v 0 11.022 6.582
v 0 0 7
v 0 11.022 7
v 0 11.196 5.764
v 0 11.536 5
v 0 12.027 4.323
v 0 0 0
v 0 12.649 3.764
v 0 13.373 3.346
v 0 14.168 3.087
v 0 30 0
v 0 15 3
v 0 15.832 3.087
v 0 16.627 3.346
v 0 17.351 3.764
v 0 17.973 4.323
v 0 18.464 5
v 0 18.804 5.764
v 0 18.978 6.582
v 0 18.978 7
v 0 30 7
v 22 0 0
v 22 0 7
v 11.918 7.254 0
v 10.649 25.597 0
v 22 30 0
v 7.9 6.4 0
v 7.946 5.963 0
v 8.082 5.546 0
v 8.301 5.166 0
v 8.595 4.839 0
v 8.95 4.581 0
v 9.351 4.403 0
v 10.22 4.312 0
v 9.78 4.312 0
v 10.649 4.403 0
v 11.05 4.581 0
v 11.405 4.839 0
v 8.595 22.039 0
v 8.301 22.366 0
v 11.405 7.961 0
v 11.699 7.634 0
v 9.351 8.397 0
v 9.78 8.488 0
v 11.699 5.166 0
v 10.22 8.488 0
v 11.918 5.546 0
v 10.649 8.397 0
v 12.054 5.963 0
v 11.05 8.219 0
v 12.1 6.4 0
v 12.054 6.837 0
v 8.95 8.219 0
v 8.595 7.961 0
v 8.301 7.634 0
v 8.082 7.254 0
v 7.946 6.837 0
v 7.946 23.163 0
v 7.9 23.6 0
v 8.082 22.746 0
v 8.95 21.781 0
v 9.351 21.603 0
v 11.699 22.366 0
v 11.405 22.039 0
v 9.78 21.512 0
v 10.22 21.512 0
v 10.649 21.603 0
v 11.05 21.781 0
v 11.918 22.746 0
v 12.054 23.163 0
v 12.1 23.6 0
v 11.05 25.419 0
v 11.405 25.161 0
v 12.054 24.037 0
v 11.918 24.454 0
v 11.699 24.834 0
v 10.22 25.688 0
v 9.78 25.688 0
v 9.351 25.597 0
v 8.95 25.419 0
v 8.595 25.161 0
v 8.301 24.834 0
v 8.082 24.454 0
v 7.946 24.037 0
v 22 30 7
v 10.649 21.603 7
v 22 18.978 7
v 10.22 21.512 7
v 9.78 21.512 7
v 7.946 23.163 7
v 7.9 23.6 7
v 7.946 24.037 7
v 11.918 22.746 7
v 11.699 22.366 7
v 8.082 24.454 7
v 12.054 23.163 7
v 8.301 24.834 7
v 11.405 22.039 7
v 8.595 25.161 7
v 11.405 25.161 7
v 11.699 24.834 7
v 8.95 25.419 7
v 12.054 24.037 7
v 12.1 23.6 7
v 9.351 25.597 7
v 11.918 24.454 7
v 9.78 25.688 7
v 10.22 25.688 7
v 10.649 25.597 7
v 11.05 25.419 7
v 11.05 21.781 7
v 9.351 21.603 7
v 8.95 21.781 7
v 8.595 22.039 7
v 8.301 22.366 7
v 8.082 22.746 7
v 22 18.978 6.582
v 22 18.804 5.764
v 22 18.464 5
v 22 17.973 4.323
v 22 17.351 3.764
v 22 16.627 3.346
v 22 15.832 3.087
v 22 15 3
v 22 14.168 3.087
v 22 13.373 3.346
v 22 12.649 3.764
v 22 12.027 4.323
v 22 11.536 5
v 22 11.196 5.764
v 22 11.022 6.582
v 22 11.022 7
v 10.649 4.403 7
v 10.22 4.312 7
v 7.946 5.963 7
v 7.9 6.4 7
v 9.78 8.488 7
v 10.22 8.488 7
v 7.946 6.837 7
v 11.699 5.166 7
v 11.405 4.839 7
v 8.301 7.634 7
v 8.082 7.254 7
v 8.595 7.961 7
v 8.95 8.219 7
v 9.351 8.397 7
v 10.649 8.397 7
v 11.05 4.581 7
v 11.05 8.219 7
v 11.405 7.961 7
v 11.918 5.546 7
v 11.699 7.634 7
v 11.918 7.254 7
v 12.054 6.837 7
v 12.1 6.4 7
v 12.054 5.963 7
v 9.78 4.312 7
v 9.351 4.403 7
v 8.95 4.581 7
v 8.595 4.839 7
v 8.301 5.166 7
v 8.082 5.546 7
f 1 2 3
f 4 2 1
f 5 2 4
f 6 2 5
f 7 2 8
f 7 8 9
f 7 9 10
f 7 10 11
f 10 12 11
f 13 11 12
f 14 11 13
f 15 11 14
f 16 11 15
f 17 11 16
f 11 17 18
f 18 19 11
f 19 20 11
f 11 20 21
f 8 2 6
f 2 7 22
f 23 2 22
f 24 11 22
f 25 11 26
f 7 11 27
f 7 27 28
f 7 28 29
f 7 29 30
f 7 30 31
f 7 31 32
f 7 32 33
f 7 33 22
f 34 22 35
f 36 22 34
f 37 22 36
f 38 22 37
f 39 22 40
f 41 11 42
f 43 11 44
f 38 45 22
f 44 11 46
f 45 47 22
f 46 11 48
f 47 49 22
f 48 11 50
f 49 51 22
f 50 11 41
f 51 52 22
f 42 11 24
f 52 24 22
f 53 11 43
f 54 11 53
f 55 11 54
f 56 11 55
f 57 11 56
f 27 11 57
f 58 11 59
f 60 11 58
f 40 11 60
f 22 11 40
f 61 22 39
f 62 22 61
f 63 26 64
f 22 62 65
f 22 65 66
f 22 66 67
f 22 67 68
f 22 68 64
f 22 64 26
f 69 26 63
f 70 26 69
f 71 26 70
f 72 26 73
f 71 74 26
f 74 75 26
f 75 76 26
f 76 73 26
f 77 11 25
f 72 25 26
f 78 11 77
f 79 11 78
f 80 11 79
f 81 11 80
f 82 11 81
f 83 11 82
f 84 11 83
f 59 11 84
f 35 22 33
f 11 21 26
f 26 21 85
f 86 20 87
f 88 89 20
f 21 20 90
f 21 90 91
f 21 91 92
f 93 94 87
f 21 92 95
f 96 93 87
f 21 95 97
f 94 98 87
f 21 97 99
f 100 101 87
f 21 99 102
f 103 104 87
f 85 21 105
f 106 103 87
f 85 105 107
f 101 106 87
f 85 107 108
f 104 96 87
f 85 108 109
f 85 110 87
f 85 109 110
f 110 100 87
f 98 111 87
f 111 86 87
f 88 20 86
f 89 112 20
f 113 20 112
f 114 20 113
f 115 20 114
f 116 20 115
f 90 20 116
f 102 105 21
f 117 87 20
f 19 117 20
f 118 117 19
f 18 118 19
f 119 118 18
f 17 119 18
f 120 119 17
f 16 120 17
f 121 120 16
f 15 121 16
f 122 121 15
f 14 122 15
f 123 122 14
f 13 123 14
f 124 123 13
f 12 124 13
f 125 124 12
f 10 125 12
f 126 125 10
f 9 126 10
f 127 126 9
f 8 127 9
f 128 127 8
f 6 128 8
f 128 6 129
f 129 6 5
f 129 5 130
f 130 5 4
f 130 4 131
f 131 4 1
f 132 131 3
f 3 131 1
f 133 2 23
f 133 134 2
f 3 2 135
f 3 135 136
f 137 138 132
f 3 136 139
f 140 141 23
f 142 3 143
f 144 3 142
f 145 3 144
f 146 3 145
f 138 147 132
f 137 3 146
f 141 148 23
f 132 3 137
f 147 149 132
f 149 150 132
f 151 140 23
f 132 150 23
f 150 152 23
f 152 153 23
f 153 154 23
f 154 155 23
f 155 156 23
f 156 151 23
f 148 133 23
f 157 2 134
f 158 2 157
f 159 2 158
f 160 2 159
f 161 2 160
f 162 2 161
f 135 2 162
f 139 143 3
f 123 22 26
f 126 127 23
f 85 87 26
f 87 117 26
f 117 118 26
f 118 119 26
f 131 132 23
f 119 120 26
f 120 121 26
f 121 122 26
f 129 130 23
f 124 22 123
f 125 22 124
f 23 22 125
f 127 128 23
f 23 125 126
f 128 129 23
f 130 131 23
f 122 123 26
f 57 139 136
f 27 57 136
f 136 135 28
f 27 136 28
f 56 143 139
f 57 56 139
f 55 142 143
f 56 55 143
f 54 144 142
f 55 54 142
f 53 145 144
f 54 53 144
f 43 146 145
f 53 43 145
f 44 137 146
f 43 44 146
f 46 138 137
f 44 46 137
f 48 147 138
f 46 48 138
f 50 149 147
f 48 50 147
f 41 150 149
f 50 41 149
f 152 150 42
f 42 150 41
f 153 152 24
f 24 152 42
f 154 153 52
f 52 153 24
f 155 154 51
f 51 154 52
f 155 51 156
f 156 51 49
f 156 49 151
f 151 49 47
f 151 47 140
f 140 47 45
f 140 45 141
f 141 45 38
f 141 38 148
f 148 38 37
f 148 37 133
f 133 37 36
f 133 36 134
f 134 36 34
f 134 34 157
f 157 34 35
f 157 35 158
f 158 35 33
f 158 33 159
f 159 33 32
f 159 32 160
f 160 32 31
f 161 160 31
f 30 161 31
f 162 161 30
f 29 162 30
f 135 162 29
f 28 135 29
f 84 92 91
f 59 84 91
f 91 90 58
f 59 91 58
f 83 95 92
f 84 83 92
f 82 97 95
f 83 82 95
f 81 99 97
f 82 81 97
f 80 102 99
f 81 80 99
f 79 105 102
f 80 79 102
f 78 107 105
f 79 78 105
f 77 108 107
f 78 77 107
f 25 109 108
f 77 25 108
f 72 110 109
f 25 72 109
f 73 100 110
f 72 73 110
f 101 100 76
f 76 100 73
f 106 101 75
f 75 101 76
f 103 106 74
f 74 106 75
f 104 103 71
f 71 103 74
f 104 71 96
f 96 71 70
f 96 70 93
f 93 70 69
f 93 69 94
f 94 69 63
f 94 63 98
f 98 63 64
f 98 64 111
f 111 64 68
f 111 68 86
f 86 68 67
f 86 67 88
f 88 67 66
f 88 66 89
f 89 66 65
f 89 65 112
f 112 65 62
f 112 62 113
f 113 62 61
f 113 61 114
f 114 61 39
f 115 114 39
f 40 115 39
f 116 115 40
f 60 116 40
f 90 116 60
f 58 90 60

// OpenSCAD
// file: functions.scad
// PRUSA Mendel  
// Functions used in many files
// GNU GPL v2
// Josef Průša
// josefprusa@me.com
// prusadjs.cz
// http://www.reprap.org/wiki/Prusa_Mendel
// http://github.com/prusajr/PrusaMendel

module nut(d,h,horizontal=true){
cornerdiameter =  (d / 2) / cos (180 / 6);
cylinder(h = h, r = cornerdiameter, $fn = 6);
if(horizontal){
for(i = [1:6]){
	rotate([0,0,60*i]) translate([-cornerdiameter-0.2,0,0]) rotate([0,0,-45]) cube(size = [2,2,h]);
}}
}

// By nophead
module polyhole(d,h) {
    n = max(round(2 * d),3);
    rotate([0,0,180])
        cylinder(h = h, r = (d / 2) / cos (180 / n), $fn = n);
}

module roundcorner(diameter){
	difference(){
		cube(size = [diameter,diameter,99], center = false);
		translate(v = [diameter, diameter, 0]) cylinder(h = 100, r=diameter, center=true);
	}
}
// file: metric.scad
// PRUSA Mendel  
// Default metric sizes
// GNU GPL v2
// Josef Průša
// josefprusa@me.com
// prusadjs.cz
// http://www.reprap.org/wiki/Prusa_Mendel
// http://github.com/prusajr/PrusaMendel

// DONT CHANGE THIS FILE! ALTER VALUES IN CONFIGURATION.SCAD INSTEAD

// RODS

threaded_rod_diameter = 8;
threaded_rod_diameter_horizontal = 8;
smooth_bar_diameter = 8;
smooth_bar_diameter_horizontal = 8;

// Nuts and bolts

m8_diameter = 8;
m8_nut_diameter = 14.5;

m4_diameter = 4;
m4_nut_diameter = 7.5;

m3_diameter = 3;
m3_nut_diameter = 5;

// Bushing holder

bushing_core_diameter = smooth_bar_diameter;
bushing_material_thickness = 1;

// Motors

motor_shaft = 5.1;
// file: configuration.scad
// PRUSA Mendel  
// Configuration file
// GNU GPL v2
// Josef Průša
// josefprusa@me.com
// prusadjs.cz
// http://www.reprap.org/wiki/Prusa_Mendel
// http://github.com/prusajr/PrusaMendel

// PLEASE SELECT ONE OF THE CONFIGURATIONS BELOW
// BY UN-COMMENTING IT

// Uncomment for metric settings
// METRIC METRIC METRIC METRIC METRIC METRIC METRIC METRIC 

include <metric.scad>;

// Uncomment for imperial settings
// IMPERIAL IMPERIAL IMPERIAL IMPERIAL IMPERIAL IMPERIAL IMPERIAL 

//include <sae.scad>;

//thin_wall = 3;
// LM8UU
//linear = false;

// override settings by customizing below
// CUSTOM CUSTOM CUSTOM CUSTOM CUSTOM CUSTOM CUSTOM CUSTOM CUSTOM

threaded_rod_diameter = 8.2;
threaded_rod_diameter_horizontal = 8.2;
smooth_bar_diameter = 8.3;
smooth_bar_diameter_horizontal = 8.3;

// Nuts and bolts

m8_diameter = 8.3;
m8_nut_diameter = 15;

m4_diameter = 4.2;
m4_nut_diameter = 9;

m3_diameter = 3.3;
m3_nut_diameter = 5.8;

///counted stuff
m3_nut_diameter_bigger = ((m3_nut_diameter  / 2) / cos (180 / 6))*2;

// functions 
include <functions.scad>
// main file
// M8 Y-axes holders for Prism Mendel
// by Terawatt Industries
// author Free Beachler

include <configuration.scad>;

// PARAMETERS
a = 30;								// parts angle
extrusion_width = 20;
holder_height = 20;
holder_width = 60;
mnt_base_thickness = 6;	// need clearance for M4 screws to tnut
overlap = 0.1;			// amount to overlap aluminum t-extrusion
slot_tab_depth = 2;
rod_radius = 4;
offset_above_extrusion = 0;	// top of extrusion to rod-center
m4_screw_edge_padding = 6;
m4_screw_dia = m4_diameter;

// CALCULATIONS
rod_center_offset_vert = mnt_base_thickness / 2;
clamp_rod_radius = rod_radius;

// RENDER
$fn=30;

yrodsupportclamp(holder_height, holder_width, mnt_base_thickness, overlap, slot_tab_depth, clamp_rod_radius, rod_center_offset_vert, m4_screw_dia);

module yrodsupportclamp(yh = holder_height, yw = holder_width, ybt = mnt_base_thickness, yo = overlap, ystd = slot_tab_depth, yrd = clamp_rod_radius, yrcov = rod_center_offset_vert, m4 = m4_screw_dia) 
{
	translate([0,-15,-15]) {
		difference() {
			rodsupport(yh, yw, ybt,yo,ystd,yrd,yrcov);
			// clamp screws
			translate([10, 3 * yw / 8 + yrd / 4 - m4 / 2, -0.01]) rotate([0, 0, 0]) cylinder(r=m4 / 2, h=extrusion_width + offset_above_extrusion + yrd / 2 + (extrusion_width / 2 * sin(a)) + 0.01);
			translate([10, yw - (3 * yw / 8 + yrd / 4 - m4 / 2), -0.01]) rotate([0,0,0]) cylinder(r=m4 / 2, h=extrusion_width + offset_above_extrusion + yrd / 2 + (extrusion_width / 2 * sin(a)) + 0.01);
		}
	}
}


module rodsupport(yh, yw, ybt, yo, ystd, yrd, yrcov)
{
	difference()
	{
		translate([0, yw / 4, extrusion_width - (extrusion_width / 2 * sin(a))]) cube([ybt * 2 + extrusion_width * sin(a), yw / 2, offset_above_extrusion + yrd / 2 + (extrusion_width / 2 * sin(a))]);
		translate([-0.01, yw / 2, extrusion_width + offset_above_extrusion + yrd / 2]) rotate([0,90,0]) cylinder(r=yrd, h=extrusion_width + 2 * yo + extrusion_width * sin(a));
	}
}
